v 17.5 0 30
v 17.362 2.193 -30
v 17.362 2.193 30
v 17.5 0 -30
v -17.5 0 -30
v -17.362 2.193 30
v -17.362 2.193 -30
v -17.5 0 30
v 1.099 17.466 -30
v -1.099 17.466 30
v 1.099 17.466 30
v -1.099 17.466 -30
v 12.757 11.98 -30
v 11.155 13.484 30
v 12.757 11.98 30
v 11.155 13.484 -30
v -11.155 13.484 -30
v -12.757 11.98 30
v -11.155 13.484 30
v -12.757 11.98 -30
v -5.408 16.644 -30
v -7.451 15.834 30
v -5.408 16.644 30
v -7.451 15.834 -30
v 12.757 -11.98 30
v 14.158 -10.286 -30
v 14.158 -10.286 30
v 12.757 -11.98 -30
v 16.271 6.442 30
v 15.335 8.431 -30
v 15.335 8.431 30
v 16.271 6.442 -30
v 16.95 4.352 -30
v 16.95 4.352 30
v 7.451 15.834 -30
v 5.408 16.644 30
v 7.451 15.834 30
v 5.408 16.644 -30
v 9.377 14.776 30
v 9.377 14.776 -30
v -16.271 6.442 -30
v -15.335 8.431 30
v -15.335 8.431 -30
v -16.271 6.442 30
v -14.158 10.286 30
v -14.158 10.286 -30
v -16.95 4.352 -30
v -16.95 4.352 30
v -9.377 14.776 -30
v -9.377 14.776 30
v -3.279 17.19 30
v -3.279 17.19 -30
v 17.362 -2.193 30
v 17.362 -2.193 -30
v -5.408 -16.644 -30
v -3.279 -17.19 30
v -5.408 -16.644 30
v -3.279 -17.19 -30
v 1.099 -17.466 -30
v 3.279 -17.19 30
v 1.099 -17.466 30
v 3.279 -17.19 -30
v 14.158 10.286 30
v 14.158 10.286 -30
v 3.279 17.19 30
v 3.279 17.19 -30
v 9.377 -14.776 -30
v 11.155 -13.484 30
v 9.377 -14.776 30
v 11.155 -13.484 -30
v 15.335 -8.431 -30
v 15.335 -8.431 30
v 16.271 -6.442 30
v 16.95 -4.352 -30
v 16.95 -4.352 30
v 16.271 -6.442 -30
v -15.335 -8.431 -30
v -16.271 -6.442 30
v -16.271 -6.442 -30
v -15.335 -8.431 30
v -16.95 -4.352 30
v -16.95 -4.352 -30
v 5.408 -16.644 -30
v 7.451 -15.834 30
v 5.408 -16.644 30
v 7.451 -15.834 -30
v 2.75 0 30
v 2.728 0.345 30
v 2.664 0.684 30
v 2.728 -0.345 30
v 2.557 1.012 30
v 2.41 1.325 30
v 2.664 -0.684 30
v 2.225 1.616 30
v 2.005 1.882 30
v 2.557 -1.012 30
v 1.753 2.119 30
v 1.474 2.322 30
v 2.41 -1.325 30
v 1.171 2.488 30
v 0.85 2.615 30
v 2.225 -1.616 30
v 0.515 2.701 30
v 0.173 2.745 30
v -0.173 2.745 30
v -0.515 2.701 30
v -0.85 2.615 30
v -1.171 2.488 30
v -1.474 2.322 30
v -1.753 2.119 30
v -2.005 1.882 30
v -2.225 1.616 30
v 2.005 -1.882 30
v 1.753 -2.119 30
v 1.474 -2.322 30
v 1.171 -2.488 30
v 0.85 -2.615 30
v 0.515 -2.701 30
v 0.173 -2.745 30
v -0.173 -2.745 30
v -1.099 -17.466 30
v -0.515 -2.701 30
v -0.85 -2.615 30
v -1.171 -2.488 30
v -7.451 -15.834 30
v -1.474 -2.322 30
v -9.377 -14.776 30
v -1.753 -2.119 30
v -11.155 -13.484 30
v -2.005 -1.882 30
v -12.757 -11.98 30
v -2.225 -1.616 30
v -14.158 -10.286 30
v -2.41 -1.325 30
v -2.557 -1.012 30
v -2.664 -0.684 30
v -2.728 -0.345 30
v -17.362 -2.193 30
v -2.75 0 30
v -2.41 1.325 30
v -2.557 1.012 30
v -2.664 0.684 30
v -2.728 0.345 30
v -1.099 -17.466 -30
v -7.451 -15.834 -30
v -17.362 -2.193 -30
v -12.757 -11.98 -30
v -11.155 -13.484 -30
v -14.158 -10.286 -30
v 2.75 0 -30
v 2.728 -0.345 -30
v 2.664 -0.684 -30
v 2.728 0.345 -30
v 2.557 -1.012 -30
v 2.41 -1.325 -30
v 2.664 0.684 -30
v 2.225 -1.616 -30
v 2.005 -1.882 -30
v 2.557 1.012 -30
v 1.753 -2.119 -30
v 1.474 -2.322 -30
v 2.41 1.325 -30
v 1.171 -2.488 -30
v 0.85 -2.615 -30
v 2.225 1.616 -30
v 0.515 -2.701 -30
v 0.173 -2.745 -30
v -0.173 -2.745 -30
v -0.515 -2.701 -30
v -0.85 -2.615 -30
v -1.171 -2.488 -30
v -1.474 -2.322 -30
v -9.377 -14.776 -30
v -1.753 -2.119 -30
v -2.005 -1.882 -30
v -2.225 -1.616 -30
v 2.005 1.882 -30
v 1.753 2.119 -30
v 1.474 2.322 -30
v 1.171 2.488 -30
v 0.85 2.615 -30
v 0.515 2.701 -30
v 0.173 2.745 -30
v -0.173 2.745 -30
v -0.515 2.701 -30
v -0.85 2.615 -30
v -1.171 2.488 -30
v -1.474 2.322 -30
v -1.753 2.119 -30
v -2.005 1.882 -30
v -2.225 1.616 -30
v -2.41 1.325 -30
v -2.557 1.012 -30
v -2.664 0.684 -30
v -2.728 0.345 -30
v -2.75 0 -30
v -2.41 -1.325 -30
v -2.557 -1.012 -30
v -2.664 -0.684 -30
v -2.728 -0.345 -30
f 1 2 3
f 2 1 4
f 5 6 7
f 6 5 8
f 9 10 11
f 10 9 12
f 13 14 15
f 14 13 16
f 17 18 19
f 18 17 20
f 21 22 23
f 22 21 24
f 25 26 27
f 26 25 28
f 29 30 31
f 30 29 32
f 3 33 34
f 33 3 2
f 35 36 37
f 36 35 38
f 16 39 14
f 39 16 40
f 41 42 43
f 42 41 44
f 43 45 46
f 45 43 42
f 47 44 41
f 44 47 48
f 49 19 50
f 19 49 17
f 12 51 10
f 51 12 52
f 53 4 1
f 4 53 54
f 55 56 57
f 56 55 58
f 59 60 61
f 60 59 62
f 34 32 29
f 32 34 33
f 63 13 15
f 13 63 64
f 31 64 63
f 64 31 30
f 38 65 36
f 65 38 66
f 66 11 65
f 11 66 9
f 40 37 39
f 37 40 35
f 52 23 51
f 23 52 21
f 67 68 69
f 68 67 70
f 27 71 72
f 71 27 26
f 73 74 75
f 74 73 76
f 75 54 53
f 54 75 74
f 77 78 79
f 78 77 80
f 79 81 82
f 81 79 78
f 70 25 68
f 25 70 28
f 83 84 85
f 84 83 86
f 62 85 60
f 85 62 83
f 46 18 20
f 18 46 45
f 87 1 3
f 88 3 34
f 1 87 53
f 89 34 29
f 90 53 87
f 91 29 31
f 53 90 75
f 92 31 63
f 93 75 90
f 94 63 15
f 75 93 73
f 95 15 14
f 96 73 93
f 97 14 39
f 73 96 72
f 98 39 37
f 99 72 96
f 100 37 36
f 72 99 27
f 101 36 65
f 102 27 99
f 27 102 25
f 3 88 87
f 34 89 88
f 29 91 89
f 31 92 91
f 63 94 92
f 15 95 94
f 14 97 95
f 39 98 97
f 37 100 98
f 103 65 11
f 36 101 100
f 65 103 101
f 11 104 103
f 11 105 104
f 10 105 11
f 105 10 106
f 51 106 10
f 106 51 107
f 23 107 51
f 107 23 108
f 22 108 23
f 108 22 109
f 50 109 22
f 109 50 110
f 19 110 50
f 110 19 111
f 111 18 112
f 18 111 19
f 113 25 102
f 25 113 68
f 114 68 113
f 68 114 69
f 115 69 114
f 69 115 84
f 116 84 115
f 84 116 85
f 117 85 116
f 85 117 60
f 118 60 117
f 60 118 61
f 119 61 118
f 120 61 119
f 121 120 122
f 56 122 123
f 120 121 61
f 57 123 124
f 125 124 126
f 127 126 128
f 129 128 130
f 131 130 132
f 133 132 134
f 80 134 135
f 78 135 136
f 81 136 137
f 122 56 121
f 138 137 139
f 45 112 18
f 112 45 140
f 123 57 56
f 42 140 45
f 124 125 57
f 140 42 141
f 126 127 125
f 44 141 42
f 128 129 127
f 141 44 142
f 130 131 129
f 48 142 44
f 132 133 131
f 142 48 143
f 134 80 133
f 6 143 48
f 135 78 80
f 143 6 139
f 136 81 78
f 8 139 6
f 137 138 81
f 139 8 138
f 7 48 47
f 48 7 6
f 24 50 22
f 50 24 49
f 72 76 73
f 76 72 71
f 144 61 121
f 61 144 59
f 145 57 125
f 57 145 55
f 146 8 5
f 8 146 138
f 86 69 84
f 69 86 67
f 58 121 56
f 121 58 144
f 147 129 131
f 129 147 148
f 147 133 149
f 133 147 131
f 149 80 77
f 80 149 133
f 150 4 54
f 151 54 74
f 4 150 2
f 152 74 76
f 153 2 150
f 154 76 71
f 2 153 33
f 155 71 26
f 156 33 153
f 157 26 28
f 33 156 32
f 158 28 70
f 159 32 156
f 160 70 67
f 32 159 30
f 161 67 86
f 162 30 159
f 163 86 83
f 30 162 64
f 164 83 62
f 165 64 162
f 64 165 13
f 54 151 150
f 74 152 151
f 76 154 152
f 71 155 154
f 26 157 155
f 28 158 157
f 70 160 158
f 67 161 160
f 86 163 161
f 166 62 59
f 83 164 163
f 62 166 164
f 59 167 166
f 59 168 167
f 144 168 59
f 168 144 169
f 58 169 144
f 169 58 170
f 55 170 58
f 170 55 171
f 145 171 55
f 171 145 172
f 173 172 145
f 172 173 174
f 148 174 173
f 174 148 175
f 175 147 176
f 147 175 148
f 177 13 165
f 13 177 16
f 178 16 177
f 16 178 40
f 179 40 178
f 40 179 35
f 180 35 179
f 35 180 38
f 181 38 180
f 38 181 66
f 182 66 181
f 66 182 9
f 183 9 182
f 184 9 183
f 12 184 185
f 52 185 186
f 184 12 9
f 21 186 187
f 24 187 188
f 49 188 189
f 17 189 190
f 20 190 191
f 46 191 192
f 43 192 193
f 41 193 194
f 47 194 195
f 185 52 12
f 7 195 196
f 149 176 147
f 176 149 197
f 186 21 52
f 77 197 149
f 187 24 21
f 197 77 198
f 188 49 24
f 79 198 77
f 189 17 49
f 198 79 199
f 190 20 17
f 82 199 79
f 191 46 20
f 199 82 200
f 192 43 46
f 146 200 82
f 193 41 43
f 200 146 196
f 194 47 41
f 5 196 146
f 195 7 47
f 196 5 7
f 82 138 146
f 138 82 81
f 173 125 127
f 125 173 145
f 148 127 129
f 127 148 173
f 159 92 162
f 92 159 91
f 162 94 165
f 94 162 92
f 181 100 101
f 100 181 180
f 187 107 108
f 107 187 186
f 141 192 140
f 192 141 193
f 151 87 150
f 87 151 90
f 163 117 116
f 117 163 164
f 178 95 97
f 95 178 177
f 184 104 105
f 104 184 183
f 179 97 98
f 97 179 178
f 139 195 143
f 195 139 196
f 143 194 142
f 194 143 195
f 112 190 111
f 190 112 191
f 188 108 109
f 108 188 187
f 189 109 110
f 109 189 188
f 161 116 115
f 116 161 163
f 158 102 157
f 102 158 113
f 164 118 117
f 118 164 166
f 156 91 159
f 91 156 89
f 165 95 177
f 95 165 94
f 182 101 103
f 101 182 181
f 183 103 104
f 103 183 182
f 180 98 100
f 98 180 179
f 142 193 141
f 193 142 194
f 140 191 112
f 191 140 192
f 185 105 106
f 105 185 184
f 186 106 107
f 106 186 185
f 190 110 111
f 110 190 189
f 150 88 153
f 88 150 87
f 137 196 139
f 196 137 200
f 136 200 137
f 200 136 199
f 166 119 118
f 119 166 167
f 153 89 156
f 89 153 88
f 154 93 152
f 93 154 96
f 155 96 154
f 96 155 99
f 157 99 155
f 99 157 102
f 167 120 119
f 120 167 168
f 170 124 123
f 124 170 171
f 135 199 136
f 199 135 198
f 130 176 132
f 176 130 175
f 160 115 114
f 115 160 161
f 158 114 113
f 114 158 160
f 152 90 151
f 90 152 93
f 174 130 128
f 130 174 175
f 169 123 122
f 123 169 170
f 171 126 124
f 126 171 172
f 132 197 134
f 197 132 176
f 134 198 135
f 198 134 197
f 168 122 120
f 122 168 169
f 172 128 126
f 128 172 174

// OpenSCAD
$fn = 50;


difference() {
	union() {
		translate(v = [0, 0, -30.0000000000]) {
			cylinder(h = 60, r = 17.5000000000);
		}
	}
	union() {
		translate(v = [0, 0, -100.0000000000]) {
			cylinder(h = 200, r = 2.7500000000);
		}
	}
}
